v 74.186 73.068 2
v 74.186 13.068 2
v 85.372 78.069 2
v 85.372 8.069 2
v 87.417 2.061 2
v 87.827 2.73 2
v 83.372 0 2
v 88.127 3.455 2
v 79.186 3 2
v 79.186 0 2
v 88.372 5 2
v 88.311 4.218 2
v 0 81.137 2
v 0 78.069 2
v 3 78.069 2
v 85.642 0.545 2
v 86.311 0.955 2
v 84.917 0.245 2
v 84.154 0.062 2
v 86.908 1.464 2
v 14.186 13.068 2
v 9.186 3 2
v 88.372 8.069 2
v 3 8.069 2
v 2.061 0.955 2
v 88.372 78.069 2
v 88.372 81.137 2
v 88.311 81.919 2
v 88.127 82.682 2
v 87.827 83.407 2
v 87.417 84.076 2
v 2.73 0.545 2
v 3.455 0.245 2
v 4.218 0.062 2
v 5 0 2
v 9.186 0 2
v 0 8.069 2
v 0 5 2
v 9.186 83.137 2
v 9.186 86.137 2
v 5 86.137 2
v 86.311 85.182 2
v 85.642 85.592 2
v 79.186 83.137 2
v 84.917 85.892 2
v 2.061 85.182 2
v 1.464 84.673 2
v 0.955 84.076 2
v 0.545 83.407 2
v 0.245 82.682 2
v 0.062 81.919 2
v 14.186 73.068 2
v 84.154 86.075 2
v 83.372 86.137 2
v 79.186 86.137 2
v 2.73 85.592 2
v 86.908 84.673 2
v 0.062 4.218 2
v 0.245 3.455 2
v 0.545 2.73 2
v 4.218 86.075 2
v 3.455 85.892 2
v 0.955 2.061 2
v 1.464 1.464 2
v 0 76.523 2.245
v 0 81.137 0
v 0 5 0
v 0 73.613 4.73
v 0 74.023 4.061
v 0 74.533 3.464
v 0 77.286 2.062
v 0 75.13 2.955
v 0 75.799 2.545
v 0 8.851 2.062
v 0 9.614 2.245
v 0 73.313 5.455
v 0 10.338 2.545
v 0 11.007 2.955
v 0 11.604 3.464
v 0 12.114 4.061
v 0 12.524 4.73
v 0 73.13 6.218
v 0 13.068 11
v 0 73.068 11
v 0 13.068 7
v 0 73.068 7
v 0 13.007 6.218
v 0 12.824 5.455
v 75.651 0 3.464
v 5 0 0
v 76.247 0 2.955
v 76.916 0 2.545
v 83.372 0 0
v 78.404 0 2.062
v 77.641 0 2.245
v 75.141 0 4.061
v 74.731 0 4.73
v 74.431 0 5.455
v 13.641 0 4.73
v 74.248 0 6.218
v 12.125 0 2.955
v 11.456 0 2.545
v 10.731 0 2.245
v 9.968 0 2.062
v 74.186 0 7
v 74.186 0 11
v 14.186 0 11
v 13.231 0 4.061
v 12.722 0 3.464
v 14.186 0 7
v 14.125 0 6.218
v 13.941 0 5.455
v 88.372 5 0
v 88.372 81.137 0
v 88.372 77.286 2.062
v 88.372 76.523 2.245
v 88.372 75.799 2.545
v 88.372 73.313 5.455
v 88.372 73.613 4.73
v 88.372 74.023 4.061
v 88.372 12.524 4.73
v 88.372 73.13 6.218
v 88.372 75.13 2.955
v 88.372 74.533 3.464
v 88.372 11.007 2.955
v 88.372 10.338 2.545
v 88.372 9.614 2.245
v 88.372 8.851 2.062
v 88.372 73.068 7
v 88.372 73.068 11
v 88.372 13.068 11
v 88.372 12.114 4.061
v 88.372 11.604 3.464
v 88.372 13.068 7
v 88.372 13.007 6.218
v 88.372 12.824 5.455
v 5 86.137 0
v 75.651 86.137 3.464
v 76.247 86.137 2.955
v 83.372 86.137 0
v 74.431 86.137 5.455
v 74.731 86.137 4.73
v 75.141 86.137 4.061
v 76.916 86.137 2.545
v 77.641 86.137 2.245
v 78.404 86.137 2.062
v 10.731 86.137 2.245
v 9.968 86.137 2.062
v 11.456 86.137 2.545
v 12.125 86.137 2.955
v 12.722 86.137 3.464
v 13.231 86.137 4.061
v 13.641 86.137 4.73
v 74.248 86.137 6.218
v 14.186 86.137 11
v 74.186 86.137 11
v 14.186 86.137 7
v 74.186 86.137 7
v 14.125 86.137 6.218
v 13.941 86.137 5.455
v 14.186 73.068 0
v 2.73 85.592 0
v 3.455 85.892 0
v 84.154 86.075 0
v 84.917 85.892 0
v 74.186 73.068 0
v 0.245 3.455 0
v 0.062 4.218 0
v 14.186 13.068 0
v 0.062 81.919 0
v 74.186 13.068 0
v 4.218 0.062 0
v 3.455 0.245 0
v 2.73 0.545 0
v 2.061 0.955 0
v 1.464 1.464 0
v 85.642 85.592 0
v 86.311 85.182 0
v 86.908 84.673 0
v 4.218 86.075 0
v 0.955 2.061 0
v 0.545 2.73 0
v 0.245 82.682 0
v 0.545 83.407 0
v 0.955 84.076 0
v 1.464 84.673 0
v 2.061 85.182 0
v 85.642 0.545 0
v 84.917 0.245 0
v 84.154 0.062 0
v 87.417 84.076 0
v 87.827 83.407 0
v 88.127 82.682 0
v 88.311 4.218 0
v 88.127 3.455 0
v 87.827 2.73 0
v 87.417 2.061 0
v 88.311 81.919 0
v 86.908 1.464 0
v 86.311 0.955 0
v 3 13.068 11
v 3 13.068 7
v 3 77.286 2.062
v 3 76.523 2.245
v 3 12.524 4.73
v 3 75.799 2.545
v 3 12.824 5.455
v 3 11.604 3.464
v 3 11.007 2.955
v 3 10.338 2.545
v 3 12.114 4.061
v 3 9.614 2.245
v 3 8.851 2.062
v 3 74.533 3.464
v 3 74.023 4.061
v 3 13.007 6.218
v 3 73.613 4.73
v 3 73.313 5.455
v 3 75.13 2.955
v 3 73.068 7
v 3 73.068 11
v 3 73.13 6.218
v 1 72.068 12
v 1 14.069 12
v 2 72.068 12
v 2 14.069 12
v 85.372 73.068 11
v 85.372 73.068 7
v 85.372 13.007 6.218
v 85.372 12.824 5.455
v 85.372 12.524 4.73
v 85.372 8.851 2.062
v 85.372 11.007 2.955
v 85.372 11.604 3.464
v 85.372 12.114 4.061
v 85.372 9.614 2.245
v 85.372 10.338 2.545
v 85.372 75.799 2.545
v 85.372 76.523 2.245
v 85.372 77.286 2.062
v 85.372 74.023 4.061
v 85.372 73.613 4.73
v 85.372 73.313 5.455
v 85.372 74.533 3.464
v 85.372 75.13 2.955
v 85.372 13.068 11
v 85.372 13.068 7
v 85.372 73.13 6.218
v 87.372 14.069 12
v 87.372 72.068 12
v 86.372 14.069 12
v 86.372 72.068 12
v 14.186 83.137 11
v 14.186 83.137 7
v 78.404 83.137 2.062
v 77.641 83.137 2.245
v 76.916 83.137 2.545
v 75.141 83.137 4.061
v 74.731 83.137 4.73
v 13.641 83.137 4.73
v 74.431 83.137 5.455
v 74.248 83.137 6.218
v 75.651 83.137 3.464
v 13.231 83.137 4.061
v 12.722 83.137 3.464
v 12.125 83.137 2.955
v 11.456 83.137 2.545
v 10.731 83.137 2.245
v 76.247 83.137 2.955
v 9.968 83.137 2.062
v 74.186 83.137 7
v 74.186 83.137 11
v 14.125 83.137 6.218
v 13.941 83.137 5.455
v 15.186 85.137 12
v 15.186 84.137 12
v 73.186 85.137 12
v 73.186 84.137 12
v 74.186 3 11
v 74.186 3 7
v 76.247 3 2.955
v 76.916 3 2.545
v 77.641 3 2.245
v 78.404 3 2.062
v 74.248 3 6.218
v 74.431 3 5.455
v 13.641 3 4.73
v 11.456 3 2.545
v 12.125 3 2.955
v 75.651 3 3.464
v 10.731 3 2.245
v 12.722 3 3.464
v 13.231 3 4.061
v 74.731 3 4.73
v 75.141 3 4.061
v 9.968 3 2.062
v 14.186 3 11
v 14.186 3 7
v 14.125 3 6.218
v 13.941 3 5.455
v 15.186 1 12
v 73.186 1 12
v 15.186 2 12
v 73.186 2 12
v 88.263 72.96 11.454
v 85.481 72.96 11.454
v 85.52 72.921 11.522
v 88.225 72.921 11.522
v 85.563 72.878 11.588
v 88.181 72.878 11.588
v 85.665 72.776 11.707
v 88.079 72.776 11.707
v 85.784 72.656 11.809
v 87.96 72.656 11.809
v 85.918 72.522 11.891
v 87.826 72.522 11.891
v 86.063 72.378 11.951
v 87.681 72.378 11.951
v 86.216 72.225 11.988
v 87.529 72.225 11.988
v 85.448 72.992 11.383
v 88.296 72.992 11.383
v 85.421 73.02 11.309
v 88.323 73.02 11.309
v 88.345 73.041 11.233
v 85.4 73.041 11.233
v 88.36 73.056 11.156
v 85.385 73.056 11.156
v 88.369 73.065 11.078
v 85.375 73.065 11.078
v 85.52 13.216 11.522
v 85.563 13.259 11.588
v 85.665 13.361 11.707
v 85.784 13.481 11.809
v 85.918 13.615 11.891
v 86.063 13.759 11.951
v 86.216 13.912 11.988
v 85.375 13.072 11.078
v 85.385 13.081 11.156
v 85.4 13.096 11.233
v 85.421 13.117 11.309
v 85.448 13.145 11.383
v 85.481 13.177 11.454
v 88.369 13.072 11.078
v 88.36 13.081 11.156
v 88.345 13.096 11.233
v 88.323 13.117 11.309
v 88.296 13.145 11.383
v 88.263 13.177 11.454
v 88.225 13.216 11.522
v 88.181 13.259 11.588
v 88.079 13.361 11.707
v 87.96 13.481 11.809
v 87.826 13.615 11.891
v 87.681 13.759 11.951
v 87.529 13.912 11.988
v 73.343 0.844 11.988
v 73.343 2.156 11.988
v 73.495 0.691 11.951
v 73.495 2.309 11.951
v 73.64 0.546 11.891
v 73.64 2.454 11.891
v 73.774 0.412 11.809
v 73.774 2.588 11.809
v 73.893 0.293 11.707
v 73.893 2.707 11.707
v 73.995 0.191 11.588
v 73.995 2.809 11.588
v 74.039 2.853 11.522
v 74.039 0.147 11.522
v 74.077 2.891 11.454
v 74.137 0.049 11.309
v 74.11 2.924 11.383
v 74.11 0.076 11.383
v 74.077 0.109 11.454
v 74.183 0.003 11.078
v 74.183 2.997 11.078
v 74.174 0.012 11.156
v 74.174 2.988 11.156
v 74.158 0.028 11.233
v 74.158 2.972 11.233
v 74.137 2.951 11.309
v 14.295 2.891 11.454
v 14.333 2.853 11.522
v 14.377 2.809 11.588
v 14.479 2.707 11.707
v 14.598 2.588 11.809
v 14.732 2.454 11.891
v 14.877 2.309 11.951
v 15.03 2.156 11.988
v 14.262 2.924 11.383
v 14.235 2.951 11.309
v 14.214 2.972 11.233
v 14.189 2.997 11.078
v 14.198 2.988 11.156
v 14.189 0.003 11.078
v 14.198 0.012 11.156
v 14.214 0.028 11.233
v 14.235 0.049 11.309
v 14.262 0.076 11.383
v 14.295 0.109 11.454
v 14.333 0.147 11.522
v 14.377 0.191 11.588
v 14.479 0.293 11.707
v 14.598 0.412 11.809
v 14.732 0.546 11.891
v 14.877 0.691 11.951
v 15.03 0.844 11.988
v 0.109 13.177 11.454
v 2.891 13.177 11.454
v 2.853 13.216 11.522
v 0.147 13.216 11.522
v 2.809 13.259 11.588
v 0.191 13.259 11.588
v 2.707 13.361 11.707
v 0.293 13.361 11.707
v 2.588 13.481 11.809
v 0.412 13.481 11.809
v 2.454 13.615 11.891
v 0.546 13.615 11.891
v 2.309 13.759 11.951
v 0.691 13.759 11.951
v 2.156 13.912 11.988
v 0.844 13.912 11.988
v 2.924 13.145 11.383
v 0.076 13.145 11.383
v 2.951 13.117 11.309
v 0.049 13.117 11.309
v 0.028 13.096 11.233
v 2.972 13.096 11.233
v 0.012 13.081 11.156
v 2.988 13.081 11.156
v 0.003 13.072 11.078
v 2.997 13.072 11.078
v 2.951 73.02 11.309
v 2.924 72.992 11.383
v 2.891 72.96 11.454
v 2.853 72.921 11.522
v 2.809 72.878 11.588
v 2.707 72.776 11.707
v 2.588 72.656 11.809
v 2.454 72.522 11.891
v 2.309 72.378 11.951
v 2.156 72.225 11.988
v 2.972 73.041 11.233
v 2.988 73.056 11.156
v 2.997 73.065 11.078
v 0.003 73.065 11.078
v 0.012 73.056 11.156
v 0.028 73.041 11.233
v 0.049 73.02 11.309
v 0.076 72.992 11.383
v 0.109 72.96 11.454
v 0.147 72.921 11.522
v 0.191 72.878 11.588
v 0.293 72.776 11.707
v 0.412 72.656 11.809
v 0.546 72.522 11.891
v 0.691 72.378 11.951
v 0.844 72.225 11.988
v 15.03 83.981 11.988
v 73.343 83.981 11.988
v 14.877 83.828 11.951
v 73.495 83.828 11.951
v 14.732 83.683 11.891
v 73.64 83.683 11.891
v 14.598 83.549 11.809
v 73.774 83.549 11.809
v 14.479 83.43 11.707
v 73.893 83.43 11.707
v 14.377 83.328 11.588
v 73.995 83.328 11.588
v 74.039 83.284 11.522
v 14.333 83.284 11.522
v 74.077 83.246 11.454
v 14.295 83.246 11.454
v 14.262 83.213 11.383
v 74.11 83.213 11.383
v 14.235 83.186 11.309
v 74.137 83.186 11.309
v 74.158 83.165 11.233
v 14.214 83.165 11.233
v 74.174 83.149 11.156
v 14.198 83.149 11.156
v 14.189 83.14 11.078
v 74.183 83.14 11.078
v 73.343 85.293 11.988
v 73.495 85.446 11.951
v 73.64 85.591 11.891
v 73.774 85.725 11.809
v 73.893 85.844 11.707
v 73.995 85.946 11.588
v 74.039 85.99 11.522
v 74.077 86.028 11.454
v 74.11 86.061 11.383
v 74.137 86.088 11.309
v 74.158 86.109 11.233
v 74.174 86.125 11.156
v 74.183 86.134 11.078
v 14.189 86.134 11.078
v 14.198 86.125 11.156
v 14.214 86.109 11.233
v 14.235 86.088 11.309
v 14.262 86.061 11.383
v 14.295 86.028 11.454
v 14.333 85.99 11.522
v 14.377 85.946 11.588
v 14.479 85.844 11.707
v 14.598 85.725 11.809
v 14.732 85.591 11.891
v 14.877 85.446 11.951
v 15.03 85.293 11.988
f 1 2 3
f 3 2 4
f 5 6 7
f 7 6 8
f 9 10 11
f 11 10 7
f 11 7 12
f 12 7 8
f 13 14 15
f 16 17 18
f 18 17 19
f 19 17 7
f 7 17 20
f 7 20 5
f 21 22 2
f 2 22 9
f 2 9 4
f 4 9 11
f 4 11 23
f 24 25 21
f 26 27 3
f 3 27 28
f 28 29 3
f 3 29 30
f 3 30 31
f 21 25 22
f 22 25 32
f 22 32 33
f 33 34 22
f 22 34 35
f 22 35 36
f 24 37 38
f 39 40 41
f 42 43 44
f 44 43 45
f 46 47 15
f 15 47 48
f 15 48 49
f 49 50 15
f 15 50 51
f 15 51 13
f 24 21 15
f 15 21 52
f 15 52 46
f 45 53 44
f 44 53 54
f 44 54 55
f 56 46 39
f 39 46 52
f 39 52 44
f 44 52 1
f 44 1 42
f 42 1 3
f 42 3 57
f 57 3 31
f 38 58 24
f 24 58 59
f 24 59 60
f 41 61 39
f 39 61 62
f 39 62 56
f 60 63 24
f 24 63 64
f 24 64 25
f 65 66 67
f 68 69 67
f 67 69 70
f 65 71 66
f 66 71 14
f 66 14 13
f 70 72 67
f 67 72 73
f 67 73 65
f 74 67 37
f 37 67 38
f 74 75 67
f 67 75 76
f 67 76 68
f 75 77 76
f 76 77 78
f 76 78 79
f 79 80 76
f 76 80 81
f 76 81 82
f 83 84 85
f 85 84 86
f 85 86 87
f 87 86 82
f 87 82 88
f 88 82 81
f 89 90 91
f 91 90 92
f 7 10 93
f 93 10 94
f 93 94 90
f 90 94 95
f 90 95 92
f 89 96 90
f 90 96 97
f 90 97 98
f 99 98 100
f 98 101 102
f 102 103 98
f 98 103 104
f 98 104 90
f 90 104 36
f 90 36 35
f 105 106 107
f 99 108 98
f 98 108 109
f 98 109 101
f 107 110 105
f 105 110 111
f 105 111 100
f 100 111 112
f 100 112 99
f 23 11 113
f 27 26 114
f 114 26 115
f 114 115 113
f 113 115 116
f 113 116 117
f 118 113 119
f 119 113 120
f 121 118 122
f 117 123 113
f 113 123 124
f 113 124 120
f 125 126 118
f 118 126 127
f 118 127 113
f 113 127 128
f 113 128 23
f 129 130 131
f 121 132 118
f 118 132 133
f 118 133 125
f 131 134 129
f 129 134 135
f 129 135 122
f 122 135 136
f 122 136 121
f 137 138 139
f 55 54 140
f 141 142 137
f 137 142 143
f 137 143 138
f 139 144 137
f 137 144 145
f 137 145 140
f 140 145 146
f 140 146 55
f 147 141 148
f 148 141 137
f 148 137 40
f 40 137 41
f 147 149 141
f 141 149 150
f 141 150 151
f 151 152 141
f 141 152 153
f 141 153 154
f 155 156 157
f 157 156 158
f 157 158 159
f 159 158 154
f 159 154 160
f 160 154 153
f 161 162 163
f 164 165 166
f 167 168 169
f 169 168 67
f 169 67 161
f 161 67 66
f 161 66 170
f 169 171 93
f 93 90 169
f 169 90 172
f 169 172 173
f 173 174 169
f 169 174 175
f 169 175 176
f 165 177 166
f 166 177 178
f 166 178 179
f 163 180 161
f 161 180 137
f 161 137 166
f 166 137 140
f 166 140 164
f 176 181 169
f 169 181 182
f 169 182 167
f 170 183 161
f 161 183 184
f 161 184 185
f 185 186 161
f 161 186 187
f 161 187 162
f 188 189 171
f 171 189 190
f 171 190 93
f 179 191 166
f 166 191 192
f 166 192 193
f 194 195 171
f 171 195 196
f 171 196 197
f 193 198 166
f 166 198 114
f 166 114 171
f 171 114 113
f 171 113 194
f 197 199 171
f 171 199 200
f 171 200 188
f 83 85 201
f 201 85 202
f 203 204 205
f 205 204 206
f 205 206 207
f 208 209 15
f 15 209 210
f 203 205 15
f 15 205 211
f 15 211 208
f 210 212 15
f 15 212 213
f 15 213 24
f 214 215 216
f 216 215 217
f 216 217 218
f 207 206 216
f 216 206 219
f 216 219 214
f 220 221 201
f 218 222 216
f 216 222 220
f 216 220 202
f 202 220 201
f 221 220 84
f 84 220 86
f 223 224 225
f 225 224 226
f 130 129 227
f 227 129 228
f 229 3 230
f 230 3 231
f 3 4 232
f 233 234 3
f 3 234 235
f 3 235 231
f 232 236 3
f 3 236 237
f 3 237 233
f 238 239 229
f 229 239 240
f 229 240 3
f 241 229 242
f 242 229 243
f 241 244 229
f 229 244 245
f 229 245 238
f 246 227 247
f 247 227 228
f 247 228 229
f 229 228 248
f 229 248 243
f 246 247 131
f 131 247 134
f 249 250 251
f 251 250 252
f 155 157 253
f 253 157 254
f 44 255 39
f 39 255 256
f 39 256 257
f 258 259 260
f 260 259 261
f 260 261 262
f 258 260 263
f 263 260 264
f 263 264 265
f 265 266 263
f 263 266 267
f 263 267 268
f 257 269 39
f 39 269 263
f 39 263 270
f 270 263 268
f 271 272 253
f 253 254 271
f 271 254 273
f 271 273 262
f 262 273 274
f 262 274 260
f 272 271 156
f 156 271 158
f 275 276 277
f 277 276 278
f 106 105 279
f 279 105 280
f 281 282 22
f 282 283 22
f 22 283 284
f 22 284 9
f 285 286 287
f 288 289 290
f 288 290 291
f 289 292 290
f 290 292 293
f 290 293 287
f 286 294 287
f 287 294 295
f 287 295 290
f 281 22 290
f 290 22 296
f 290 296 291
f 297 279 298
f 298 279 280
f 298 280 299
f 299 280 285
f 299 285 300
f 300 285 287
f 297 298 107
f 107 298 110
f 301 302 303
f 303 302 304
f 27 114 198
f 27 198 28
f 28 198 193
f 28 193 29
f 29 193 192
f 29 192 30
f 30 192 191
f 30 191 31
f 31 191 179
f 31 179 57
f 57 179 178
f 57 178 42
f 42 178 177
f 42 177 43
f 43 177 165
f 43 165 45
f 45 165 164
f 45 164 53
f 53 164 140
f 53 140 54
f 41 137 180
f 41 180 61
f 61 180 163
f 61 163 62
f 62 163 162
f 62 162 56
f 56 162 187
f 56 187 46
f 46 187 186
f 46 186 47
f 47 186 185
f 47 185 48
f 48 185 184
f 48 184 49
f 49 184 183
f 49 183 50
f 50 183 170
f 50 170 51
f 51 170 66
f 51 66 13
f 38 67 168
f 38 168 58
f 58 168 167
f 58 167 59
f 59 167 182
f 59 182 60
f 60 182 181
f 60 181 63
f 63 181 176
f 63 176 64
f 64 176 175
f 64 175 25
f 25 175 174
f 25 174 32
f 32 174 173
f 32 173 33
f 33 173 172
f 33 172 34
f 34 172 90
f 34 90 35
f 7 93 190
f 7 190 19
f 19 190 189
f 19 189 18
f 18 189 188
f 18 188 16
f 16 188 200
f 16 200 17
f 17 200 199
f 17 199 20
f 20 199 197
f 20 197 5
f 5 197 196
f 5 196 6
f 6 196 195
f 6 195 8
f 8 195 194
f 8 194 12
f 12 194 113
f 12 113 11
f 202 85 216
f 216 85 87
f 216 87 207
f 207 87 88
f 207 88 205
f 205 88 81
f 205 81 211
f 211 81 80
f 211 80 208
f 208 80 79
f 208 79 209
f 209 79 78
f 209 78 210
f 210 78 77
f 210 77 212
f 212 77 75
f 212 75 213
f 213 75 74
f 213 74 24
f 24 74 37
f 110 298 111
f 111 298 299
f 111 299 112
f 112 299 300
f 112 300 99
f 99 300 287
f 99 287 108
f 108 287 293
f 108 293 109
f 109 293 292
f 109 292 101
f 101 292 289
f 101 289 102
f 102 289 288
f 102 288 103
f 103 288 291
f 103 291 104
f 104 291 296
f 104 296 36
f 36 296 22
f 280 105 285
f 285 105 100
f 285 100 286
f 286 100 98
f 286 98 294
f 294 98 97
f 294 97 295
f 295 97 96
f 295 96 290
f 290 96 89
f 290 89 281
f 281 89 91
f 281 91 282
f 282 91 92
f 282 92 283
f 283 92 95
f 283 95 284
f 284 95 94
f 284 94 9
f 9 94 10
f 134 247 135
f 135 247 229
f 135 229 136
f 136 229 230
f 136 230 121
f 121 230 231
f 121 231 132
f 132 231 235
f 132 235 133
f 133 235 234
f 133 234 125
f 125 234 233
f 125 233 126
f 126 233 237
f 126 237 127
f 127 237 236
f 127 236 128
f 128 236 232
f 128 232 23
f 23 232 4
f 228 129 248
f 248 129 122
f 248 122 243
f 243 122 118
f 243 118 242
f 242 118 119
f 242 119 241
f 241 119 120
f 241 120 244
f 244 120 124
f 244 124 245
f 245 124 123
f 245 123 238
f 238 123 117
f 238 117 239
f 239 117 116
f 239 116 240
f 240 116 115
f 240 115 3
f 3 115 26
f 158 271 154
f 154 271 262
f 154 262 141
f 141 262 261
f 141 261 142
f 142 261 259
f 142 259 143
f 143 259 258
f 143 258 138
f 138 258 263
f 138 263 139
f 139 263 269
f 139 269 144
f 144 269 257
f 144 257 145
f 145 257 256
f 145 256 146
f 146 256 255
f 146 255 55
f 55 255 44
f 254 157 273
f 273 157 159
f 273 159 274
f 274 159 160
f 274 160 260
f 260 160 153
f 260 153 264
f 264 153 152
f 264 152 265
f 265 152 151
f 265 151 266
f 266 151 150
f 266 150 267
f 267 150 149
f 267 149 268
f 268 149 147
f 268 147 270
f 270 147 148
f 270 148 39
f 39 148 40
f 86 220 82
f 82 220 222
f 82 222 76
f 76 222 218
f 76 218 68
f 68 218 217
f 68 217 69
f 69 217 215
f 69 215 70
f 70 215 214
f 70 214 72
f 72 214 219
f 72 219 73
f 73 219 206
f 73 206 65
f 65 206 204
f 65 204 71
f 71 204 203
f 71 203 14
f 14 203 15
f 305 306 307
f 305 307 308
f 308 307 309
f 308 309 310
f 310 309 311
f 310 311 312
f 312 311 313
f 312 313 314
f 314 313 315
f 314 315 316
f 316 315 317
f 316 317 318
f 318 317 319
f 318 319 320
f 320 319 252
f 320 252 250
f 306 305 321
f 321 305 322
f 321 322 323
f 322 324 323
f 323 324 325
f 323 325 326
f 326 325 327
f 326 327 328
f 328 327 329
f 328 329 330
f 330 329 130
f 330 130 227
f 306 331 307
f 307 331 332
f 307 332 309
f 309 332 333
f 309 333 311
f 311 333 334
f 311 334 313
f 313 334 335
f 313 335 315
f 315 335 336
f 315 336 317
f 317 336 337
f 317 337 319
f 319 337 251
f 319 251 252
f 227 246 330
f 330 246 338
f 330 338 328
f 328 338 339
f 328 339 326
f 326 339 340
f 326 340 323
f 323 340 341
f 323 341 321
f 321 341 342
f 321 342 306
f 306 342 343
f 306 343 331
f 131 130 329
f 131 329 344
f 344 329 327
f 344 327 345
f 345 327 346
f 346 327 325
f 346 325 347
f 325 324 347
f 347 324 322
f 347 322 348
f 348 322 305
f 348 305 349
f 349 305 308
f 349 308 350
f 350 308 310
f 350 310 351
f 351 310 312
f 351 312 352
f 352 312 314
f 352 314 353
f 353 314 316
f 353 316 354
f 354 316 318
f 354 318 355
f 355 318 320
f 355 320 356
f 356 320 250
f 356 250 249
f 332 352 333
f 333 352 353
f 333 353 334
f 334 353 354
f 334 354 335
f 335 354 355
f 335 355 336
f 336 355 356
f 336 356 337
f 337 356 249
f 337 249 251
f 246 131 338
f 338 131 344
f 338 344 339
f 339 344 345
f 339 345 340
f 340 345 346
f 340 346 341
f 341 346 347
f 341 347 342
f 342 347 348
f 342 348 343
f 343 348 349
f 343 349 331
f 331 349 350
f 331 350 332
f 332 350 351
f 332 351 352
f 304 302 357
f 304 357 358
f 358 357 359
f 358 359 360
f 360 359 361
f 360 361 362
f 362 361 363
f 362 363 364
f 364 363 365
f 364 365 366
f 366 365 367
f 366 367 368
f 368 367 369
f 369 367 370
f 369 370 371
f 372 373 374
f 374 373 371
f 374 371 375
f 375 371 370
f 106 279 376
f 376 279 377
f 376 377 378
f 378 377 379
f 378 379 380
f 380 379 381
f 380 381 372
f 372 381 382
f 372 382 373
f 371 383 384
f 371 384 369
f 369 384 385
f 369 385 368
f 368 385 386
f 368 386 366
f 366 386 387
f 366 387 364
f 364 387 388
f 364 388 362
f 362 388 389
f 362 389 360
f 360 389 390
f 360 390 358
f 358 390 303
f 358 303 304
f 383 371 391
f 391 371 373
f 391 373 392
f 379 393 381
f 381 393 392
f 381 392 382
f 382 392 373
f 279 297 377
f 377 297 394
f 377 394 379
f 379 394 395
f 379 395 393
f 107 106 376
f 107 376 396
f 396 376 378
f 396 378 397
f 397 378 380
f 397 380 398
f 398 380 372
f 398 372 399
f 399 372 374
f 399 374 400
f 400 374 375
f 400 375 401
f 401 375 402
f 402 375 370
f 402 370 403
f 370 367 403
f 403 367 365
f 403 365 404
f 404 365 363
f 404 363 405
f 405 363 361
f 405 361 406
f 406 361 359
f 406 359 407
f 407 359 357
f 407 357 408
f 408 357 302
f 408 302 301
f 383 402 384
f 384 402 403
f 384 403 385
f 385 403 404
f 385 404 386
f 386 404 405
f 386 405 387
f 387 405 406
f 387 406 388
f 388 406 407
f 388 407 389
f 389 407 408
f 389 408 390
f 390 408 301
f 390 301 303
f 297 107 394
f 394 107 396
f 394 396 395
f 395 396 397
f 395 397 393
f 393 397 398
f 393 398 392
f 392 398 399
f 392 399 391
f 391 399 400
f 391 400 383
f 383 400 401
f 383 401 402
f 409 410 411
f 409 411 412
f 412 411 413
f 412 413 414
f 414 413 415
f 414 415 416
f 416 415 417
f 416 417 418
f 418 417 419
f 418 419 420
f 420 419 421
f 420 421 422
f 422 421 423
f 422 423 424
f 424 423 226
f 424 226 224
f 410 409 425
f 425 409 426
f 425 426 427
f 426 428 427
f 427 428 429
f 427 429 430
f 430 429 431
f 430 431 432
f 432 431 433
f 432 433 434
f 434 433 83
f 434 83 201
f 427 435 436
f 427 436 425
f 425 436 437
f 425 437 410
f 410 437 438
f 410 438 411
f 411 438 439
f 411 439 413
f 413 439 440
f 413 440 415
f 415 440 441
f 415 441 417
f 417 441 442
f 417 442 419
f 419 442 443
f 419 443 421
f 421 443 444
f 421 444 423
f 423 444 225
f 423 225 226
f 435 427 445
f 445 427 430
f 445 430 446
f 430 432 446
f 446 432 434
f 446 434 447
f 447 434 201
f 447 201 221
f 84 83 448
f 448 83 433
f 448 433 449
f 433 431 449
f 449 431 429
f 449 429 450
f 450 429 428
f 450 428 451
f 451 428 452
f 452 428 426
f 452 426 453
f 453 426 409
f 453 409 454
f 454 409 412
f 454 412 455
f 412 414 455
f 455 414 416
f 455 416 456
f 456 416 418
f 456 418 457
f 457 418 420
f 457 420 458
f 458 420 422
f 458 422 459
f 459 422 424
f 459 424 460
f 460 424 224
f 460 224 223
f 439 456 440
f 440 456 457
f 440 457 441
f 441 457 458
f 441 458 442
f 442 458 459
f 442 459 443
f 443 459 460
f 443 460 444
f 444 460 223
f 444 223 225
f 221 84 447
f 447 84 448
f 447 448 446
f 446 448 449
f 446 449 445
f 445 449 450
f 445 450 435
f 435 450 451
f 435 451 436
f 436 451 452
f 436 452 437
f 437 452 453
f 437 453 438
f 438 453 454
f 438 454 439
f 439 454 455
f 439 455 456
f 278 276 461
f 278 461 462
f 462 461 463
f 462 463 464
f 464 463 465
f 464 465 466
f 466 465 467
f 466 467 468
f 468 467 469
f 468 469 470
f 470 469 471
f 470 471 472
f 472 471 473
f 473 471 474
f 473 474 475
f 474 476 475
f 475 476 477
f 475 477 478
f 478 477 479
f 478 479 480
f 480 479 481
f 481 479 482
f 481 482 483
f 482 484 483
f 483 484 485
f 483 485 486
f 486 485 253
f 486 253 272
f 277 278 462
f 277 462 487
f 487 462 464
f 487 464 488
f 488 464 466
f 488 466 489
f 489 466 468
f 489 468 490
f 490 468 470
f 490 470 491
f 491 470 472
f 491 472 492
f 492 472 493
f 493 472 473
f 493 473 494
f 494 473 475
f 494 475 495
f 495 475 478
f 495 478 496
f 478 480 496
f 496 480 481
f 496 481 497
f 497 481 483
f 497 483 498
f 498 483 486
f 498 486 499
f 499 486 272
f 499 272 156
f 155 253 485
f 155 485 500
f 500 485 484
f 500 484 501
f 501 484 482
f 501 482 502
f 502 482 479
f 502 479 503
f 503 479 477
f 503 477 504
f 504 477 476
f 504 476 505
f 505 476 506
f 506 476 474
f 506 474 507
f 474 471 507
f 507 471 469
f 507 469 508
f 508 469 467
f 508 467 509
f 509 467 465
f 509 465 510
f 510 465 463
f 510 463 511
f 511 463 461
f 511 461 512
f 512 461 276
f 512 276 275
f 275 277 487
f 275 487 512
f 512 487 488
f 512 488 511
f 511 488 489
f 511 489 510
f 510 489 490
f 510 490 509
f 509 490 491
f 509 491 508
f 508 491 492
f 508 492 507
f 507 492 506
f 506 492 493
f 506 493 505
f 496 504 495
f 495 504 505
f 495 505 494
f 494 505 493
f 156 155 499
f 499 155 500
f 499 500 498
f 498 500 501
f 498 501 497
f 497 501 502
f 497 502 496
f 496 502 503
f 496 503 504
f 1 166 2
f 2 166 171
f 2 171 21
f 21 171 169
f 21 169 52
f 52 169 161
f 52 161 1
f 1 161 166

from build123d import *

# Parameters (mm, degrees)
SKETCH1_W           = 88.3722
SKETCH1_H           = 86.137
BOSS_EXTRUDE1_DEPTH = 2
SKETCH2_W           = 3
SKETCH2_H           = 60
SKETCH2_W_2         = 60
SKETCH2_H_2         = 3
BOSS_EXTRUDE2_DEPTH = 10
FILLET1_R           = 5
FILLET2_R           = 5
FILLET3_R           = 1
CUT_EXTRUDE1_REACH  = 4
SKETCH3_W           = 60
SKETCH3_H           = 60


with BuildPart() as part:
    # Sketch1 → Boss-Extrude1 (new body)
    with BuildSketch(Plane.XY):
        with Locations((44.1861, 43.0685)):
            Rectangle(SKETCH1_W, SKETCH1_H)
    extrude(amount=BOSS_EXTRUDE1_DEPTH)

    # Sketch2 → Boss-Extrude2 (add)
    with BuildSketch(Plane.XY.offset(2)):
        with Locations((1.5, 43.0685)):
            Rectangle(SKETCH2_W, SKETCH2_H)
        with Locations((86.8722, 43.0685)):
            Rectangle(SKETCH2_W, SKETCH2_H)
        with Locations((44.1861, 1.5)):
            Rectangle(SKETCH2_W_2, SKETCH2_H_2)
        with Locations((44.1861, 84.637)):
            Rectangle(SKETCH2_W_2, SKETCH2_H_2)
    extrude(amount=BOSS_EXTRUDE2_DEPTH)

    # Fillet1
    fillet1_edges = [part.edges().sort_by_distance(p)[0] for p in [
        (0, 86.137, 1),
        (88.3722, 86.137, 1),
        (88.3722, 0, 1),
        (0, 0, 1),
    ]]
    fillet(fillet1_edges, radius=FILLET1_R)

    # Fillet2
    fillet2_edges = [part.edges().sort_by_distance(p)[0] for p in [
        (1.5, 13.0685, 2),
        (1.5, 73.0685, 2),
        (86.8722, 73.0685, 2),
        (86.8722, 13.0685, 2),
        (14.1861, 84.637, 2),
        (74.1861, 84.637, 2),
        (74.1861, 1.5, 2),
        (14.1861, 1.5, 2),
    ]]
    fillet(fillet2_edges, radius=FILLET2_R)

    # Fillet3
    fillet3_edges = [part.edges().sort_by_distance(p)[0] for p in [
        (0, 43.0685, 12),
        (1.5, 13.0685, 12),
        (3, 43.0685, 12),
        (1.5, 73.0685, 12),
        (88.3722, 43.0685, 12),
        (86.8722, 73.0685, 12),
        (85.3722, 43.0685, 12),
        (86.8722, 13.0685, 12),
        (14.1861, 84.637, 12),
        (44.1861, 83.137, 12),
        (74.1861, 84.637, 12),
        (44.1861, 86.137, 12),
        (44.1861, 0, 12),
        (74.1861, 1.5, 12),
        (44.1861, 3, 12),
        (14.1861, 1.5, 12),
    ]]
    fillet(fillet3_edges, radius=FILLET3_R)

    # Sketch3 → Cut-Extrude1 (cut, up to next)
    with BuildSketch(Plane.XY.offset(2), mode=Mode.PRIVATE) as cut_extrude1_sk1:
        with Locations((44.1861, 43.0685)):
            Rectangle(SKETCH3_W, SKETCH3_H)
    cut_extrude1_tool1 = extrude(cut_extrude1_sk1.sketch, amount=-CUT_EXTRUDE1_REACH, mode=Mode.PRIVATE) & part.part
    add(cut_extrude1_tool1.solids().sort_by_distance((44.1861, 43.0685, 2))[0], mode=Mode.SUBTRACT)


solid = part.part
